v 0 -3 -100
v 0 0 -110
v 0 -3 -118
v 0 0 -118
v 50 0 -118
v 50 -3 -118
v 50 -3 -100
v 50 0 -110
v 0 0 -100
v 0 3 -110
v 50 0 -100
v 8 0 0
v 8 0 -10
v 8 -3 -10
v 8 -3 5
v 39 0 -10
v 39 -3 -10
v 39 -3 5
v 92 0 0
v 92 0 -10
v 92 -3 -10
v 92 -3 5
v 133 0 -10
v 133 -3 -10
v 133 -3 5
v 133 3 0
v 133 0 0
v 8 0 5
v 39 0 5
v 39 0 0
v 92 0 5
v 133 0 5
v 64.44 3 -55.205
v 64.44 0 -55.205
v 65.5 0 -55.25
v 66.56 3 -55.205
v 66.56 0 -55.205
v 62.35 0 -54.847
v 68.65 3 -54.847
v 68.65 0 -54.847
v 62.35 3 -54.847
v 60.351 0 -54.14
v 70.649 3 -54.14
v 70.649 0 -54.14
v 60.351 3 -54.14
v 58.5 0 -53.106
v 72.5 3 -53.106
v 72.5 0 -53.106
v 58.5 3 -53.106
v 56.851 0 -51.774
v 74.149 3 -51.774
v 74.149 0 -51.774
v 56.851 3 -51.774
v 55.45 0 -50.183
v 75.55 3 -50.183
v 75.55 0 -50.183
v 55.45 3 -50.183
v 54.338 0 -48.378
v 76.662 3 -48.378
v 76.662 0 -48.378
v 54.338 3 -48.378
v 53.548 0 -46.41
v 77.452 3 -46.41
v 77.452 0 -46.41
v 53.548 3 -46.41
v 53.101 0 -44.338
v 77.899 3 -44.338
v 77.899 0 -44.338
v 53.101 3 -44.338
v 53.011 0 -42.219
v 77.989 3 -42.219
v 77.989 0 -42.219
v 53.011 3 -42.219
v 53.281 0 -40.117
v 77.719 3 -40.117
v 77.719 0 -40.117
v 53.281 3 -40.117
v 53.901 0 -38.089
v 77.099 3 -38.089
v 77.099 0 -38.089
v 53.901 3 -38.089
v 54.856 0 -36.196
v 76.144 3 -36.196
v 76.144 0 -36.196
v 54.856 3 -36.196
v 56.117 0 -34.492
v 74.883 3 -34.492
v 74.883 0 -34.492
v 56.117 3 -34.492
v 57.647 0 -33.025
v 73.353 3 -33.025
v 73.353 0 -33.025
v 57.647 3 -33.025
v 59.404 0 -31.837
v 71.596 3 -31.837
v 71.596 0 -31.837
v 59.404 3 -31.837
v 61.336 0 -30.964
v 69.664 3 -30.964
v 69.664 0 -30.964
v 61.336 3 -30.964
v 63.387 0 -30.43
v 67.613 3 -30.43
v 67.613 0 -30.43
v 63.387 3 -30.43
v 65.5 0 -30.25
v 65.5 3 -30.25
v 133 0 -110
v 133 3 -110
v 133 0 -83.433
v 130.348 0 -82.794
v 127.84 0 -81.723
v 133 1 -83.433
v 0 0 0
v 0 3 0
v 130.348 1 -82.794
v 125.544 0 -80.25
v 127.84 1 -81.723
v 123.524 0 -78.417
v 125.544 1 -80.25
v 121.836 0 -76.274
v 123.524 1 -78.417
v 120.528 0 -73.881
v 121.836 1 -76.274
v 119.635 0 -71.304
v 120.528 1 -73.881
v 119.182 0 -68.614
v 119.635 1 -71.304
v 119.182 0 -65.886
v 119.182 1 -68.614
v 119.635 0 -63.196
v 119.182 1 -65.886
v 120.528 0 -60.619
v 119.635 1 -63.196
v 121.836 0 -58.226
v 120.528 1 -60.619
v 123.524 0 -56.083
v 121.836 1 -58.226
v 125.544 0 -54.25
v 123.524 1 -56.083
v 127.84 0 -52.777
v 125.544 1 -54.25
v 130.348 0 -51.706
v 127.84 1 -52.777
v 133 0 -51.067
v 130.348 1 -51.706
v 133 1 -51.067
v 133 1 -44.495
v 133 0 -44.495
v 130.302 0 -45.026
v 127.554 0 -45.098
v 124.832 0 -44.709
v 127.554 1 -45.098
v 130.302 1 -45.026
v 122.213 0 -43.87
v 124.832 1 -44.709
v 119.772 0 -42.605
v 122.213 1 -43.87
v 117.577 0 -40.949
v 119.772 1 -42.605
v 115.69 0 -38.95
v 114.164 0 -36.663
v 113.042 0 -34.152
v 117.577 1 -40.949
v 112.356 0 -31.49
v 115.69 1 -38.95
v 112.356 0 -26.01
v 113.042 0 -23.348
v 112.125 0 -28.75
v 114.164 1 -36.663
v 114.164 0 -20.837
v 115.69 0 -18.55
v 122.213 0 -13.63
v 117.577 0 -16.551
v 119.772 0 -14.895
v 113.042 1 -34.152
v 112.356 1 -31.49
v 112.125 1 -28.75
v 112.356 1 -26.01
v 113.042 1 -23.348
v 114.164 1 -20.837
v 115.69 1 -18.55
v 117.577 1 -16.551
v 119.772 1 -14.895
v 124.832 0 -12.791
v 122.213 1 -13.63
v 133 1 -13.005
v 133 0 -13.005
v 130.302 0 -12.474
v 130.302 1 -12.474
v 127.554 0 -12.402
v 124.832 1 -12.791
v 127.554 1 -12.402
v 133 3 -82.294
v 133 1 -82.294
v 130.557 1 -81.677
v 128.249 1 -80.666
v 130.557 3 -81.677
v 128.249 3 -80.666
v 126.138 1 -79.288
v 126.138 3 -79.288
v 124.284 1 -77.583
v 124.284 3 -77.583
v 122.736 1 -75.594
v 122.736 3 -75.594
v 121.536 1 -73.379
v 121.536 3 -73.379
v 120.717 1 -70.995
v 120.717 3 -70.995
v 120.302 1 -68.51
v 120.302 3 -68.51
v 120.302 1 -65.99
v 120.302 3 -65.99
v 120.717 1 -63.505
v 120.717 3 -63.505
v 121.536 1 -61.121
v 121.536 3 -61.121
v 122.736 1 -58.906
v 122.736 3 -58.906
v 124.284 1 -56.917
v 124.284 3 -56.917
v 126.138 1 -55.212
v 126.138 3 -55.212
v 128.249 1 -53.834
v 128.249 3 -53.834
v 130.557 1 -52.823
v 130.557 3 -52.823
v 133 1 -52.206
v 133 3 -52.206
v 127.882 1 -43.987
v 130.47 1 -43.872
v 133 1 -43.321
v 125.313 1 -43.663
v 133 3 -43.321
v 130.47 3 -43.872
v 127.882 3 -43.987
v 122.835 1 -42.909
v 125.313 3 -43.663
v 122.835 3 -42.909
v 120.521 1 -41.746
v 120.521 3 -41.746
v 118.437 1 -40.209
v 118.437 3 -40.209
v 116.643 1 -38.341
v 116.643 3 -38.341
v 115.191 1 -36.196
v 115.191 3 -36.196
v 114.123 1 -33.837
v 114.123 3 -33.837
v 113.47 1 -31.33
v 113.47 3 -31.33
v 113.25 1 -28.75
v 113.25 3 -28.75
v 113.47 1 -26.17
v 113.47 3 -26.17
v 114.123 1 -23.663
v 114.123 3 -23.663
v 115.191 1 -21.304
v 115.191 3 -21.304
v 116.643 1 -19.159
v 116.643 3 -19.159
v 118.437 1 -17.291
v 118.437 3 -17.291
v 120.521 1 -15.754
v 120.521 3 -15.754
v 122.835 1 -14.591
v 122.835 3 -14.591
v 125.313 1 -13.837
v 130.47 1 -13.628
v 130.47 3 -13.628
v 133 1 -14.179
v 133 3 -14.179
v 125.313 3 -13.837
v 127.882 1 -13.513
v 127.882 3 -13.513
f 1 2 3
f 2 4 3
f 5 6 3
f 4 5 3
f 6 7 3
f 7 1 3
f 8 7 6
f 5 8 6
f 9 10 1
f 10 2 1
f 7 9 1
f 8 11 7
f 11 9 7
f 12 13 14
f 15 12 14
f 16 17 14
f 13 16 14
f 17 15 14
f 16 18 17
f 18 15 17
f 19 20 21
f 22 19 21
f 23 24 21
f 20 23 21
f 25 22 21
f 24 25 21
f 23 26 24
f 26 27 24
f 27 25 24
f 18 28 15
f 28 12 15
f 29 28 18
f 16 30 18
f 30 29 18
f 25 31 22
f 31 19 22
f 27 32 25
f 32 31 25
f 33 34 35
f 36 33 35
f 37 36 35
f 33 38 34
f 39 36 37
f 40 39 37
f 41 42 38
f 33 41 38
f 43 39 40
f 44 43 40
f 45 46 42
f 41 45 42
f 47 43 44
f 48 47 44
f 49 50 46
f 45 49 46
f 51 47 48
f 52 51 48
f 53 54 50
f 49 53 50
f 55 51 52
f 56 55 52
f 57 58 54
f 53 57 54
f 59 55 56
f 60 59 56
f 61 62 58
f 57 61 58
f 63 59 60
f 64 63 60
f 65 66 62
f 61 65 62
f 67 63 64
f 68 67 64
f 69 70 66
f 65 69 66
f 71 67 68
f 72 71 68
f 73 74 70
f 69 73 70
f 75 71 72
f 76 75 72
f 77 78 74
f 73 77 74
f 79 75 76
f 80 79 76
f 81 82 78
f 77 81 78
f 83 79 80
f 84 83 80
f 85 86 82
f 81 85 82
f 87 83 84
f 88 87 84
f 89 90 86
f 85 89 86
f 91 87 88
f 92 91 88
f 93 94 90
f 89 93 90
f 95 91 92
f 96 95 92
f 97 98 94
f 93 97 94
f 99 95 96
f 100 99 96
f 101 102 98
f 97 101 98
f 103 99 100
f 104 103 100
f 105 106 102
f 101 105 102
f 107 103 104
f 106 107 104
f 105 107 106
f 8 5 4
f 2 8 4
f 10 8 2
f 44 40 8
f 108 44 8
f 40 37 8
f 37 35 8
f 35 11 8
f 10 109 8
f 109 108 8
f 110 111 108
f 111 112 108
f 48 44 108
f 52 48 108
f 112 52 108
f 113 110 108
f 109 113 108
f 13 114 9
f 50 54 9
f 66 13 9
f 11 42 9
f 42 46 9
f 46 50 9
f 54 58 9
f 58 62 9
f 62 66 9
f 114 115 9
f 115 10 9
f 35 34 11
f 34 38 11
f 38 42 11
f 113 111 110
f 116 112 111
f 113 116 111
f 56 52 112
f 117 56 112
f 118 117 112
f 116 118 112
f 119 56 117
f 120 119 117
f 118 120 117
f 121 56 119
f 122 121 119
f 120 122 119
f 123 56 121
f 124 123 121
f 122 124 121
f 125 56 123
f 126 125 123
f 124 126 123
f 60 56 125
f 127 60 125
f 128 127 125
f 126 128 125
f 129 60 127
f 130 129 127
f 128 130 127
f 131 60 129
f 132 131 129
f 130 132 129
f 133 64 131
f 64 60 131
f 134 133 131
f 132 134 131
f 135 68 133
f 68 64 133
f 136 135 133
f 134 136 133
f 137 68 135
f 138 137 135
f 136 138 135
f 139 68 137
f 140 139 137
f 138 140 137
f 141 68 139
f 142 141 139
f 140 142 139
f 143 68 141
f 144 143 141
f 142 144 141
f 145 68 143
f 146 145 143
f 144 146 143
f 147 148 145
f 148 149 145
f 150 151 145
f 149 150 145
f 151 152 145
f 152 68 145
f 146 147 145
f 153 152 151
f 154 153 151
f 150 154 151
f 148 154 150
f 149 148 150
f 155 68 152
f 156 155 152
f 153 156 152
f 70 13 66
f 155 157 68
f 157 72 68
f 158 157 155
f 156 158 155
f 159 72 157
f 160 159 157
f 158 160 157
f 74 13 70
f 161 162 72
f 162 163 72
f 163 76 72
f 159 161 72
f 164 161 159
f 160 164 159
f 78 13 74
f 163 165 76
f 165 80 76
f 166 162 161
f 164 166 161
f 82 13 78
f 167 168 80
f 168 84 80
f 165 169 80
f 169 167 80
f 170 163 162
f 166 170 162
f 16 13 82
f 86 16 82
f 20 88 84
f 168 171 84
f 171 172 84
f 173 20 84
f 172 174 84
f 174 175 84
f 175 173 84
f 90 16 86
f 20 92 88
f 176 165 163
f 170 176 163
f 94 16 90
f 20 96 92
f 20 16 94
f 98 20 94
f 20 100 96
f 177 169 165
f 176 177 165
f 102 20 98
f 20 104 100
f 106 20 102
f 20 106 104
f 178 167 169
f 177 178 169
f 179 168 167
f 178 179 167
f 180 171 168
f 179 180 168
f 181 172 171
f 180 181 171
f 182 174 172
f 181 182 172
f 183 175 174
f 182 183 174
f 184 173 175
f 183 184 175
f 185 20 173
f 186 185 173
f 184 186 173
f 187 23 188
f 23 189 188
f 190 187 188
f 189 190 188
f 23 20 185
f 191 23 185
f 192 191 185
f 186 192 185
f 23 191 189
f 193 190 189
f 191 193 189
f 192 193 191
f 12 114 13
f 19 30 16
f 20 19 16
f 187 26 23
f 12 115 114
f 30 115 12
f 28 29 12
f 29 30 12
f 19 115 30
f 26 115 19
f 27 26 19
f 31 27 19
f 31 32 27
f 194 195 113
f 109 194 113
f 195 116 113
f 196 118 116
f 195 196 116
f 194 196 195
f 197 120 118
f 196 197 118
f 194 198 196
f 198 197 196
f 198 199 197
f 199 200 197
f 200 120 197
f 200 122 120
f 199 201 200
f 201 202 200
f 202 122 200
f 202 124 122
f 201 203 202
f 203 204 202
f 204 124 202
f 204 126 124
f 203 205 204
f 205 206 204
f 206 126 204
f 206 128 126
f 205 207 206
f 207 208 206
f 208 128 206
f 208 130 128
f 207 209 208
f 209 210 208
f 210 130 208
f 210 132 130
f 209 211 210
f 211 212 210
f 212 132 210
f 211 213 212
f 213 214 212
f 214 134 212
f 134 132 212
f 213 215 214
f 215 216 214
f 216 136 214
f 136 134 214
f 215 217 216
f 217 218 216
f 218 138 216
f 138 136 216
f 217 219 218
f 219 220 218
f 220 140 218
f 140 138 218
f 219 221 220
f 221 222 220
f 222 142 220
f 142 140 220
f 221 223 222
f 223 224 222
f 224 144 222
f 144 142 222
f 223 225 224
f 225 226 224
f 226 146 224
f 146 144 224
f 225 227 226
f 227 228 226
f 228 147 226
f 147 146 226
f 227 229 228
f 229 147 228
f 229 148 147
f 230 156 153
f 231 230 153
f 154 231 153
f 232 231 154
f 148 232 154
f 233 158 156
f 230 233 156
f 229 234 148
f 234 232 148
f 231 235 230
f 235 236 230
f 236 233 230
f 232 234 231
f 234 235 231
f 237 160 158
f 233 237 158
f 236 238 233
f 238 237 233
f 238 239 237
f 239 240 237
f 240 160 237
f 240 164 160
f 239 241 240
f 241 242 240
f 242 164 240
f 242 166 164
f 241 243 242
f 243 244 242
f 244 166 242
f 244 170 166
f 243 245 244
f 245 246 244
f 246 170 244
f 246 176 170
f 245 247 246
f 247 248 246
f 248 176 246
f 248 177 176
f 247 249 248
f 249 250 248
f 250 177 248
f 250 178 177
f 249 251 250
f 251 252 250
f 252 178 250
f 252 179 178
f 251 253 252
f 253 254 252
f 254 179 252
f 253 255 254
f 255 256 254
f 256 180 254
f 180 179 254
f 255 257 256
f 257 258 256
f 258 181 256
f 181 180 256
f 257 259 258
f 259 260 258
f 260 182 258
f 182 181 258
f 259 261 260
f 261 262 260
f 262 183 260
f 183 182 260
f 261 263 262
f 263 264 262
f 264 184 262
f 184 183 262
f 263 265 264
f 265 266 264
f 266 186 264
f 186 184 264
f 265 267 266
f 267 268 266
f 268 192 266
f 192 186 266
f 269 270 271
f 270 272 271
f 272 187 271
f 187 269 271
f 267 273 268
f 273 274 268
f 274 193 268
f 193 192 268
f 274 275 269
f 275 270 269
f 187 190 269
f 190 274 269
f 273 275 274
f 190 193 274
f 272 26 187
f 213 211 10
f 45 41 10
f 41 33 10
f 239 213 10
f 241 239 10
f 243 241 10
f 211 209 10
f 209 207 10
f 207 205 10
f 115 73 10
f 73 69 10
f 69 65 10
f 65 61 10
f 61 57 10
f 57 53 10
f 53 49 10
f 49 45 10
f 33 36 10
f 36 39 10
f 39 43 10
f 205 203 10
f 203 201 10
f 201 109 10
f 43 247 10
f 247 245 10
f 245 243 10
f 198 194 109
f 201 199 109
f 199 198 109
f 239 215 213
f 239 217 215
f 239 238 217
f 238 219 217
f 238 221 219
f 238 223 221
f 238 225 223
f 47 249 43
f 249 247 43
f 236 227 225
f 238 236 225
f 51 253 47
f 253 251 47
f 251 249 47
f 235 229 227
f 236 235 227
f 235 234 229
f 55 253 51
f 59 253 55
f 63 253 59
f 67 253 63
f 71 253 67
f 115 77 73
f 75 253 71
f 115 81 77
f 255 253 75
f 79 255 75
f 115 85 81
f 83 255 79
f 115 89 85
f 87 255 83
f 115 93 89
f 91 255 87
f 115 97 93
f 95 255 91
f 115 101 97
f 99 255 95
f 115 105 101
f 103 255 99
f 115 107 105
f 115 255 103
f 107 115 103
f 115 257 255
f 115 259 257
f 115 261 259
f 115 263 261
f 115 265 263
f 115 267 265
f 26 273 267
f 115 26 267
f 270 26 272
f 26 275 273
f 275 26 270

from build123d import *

# Parameters (mm, degrees)
SKETCH1_W           = 133
SKETCH1_H           = 110
BOSS_EXTRUDE1_DEPTH = 3
SKETCH2_W           = 50
SKETCH2_H           = 18
SKETCH2_W_2         = 41
SKETCH2_H_2         = 15
SKETCH2_W_3         = 31
BOSS_EXTRUDE2_DEPTH = 3
CUT_EXTRUDE1_REACH  = 8
SKETCH3_R           = 12.5
SKETCH3_R_2         = 15.25
SKETCH4_R           = 16.375
CUT_EXTRUDE2_DEPTH  = 1


with BuildPart() as part:
    # Sketch1 → Boss-Extrude1 (new body)
    with BuildSketch(Plane(origin=(0, 0, 0), x_dir=(1, 0, 0), z_dir=(0, 1, 0))):
        with Locations((66.5, 55)):
            Rectangle(SKETCH1_W, SKETCH1_H)
    extrude(amount=BOSS_EXTRUDE1_DEPTH)

    # Sketch2 → Boss-Extrude2 (add)
    with BuildSketch(Plane.XZ):
        with Locations((25, -109)):
            Rectangle(SKETCH2_W, SKETCH2_H)
        with Locations((112.5, -2.5)):
            Rectangle(SKETCH2_W_2, SKETCH2_H_2)
        with Locations((23.5, -2.5)):
            Rectangle(SKETCH2_W_3, SKETCH2_H_2)
    extrude(amount=BOSS_EXTRUDE2_DEPTH)

    # Sketch3 → Cut-Extrude1 (cut, up to next)
    with BuildSketch(Plane(origin=(0, 3, 0), x_dir=(1, 0, 0), z_dir=(0, 1, 0)), mode=Mode.PRIVATE) as cut_extrude1_sk1:
        with Locations((65.5, 42.75)):
            Circle(SKETCH3_R)
    cut_extrude1_tool1 = extrude(cut_extrude1_sk1.sketch, amount=-CUT_EXTRUDE1_REACH, mode=Mode.PRIVATE) & part.part
    add(cut_extrude1_tool1.solids().sort_by_distance((65.5, 3, -42.75))[0], mode=Mode.SUBTRACT)
    # Sketch3 → Cut-Extrude1 (cut, up to next)
    with BuildSketch(Plane(origin=(0, 3, 0), x_dir=(1, 0, 0), z_dir=(0, 1, 0)), mode=Mode.PRIVATE) as cut_extrude1_sk2:
        with Locations((128.5, 28.75)):
            Circle(SKETCH3_R_2)
    cut_extrude1_tool2 = extrude(cut_extrude1_sk2.sketch, amount=-CUT_EXTRUDE1_REACH, mode=Mode.PRIVATE) & part.part
    add(cut_extrude1_tool2.solids().sort_by_distance((128.5, 3, -28.75))[0], mode=Mode.SUBTRACT)
    # Sketch3 → Cut-Extrude1 (cut, up to next)
    with BuildSketch(Plane(origin=(0, 3, 0), x_dir=(1, 0, 0), z_dir=(0, 1, 0)), mode=Mode.PRIVATE) as cut_extrude1_sk3:
        with Locations((135.5, 67.25)):
            Circle(SKETCH3_R_2)
    cut_extrude1_tool3 = extrude(cut_extrude1_sk3.sketch, amount=-CUT_EXTRUDE1_REACH, mode=Mode.PRIVATE) & part.part
    add(cut_extrude1_tool3.solids().sort_by_distance((135.5, 3, -67.25))[0], mode=Mode.SUBTRACT)

    # Sketch4 → Cut-Extrude2 (cut)
    with BuildSketch(Plane.XZ):
        with Locations((128.5, -28.75)):
            Circle(SKETCH4_R)
        with Locations((135.5, -67.25)):
            Circle(SKETCH4_R)
    extrude(amount=-CUT_EXTRUDE2_DEPTH, mode=Mode.SUBTRACT)


solid = part.part
